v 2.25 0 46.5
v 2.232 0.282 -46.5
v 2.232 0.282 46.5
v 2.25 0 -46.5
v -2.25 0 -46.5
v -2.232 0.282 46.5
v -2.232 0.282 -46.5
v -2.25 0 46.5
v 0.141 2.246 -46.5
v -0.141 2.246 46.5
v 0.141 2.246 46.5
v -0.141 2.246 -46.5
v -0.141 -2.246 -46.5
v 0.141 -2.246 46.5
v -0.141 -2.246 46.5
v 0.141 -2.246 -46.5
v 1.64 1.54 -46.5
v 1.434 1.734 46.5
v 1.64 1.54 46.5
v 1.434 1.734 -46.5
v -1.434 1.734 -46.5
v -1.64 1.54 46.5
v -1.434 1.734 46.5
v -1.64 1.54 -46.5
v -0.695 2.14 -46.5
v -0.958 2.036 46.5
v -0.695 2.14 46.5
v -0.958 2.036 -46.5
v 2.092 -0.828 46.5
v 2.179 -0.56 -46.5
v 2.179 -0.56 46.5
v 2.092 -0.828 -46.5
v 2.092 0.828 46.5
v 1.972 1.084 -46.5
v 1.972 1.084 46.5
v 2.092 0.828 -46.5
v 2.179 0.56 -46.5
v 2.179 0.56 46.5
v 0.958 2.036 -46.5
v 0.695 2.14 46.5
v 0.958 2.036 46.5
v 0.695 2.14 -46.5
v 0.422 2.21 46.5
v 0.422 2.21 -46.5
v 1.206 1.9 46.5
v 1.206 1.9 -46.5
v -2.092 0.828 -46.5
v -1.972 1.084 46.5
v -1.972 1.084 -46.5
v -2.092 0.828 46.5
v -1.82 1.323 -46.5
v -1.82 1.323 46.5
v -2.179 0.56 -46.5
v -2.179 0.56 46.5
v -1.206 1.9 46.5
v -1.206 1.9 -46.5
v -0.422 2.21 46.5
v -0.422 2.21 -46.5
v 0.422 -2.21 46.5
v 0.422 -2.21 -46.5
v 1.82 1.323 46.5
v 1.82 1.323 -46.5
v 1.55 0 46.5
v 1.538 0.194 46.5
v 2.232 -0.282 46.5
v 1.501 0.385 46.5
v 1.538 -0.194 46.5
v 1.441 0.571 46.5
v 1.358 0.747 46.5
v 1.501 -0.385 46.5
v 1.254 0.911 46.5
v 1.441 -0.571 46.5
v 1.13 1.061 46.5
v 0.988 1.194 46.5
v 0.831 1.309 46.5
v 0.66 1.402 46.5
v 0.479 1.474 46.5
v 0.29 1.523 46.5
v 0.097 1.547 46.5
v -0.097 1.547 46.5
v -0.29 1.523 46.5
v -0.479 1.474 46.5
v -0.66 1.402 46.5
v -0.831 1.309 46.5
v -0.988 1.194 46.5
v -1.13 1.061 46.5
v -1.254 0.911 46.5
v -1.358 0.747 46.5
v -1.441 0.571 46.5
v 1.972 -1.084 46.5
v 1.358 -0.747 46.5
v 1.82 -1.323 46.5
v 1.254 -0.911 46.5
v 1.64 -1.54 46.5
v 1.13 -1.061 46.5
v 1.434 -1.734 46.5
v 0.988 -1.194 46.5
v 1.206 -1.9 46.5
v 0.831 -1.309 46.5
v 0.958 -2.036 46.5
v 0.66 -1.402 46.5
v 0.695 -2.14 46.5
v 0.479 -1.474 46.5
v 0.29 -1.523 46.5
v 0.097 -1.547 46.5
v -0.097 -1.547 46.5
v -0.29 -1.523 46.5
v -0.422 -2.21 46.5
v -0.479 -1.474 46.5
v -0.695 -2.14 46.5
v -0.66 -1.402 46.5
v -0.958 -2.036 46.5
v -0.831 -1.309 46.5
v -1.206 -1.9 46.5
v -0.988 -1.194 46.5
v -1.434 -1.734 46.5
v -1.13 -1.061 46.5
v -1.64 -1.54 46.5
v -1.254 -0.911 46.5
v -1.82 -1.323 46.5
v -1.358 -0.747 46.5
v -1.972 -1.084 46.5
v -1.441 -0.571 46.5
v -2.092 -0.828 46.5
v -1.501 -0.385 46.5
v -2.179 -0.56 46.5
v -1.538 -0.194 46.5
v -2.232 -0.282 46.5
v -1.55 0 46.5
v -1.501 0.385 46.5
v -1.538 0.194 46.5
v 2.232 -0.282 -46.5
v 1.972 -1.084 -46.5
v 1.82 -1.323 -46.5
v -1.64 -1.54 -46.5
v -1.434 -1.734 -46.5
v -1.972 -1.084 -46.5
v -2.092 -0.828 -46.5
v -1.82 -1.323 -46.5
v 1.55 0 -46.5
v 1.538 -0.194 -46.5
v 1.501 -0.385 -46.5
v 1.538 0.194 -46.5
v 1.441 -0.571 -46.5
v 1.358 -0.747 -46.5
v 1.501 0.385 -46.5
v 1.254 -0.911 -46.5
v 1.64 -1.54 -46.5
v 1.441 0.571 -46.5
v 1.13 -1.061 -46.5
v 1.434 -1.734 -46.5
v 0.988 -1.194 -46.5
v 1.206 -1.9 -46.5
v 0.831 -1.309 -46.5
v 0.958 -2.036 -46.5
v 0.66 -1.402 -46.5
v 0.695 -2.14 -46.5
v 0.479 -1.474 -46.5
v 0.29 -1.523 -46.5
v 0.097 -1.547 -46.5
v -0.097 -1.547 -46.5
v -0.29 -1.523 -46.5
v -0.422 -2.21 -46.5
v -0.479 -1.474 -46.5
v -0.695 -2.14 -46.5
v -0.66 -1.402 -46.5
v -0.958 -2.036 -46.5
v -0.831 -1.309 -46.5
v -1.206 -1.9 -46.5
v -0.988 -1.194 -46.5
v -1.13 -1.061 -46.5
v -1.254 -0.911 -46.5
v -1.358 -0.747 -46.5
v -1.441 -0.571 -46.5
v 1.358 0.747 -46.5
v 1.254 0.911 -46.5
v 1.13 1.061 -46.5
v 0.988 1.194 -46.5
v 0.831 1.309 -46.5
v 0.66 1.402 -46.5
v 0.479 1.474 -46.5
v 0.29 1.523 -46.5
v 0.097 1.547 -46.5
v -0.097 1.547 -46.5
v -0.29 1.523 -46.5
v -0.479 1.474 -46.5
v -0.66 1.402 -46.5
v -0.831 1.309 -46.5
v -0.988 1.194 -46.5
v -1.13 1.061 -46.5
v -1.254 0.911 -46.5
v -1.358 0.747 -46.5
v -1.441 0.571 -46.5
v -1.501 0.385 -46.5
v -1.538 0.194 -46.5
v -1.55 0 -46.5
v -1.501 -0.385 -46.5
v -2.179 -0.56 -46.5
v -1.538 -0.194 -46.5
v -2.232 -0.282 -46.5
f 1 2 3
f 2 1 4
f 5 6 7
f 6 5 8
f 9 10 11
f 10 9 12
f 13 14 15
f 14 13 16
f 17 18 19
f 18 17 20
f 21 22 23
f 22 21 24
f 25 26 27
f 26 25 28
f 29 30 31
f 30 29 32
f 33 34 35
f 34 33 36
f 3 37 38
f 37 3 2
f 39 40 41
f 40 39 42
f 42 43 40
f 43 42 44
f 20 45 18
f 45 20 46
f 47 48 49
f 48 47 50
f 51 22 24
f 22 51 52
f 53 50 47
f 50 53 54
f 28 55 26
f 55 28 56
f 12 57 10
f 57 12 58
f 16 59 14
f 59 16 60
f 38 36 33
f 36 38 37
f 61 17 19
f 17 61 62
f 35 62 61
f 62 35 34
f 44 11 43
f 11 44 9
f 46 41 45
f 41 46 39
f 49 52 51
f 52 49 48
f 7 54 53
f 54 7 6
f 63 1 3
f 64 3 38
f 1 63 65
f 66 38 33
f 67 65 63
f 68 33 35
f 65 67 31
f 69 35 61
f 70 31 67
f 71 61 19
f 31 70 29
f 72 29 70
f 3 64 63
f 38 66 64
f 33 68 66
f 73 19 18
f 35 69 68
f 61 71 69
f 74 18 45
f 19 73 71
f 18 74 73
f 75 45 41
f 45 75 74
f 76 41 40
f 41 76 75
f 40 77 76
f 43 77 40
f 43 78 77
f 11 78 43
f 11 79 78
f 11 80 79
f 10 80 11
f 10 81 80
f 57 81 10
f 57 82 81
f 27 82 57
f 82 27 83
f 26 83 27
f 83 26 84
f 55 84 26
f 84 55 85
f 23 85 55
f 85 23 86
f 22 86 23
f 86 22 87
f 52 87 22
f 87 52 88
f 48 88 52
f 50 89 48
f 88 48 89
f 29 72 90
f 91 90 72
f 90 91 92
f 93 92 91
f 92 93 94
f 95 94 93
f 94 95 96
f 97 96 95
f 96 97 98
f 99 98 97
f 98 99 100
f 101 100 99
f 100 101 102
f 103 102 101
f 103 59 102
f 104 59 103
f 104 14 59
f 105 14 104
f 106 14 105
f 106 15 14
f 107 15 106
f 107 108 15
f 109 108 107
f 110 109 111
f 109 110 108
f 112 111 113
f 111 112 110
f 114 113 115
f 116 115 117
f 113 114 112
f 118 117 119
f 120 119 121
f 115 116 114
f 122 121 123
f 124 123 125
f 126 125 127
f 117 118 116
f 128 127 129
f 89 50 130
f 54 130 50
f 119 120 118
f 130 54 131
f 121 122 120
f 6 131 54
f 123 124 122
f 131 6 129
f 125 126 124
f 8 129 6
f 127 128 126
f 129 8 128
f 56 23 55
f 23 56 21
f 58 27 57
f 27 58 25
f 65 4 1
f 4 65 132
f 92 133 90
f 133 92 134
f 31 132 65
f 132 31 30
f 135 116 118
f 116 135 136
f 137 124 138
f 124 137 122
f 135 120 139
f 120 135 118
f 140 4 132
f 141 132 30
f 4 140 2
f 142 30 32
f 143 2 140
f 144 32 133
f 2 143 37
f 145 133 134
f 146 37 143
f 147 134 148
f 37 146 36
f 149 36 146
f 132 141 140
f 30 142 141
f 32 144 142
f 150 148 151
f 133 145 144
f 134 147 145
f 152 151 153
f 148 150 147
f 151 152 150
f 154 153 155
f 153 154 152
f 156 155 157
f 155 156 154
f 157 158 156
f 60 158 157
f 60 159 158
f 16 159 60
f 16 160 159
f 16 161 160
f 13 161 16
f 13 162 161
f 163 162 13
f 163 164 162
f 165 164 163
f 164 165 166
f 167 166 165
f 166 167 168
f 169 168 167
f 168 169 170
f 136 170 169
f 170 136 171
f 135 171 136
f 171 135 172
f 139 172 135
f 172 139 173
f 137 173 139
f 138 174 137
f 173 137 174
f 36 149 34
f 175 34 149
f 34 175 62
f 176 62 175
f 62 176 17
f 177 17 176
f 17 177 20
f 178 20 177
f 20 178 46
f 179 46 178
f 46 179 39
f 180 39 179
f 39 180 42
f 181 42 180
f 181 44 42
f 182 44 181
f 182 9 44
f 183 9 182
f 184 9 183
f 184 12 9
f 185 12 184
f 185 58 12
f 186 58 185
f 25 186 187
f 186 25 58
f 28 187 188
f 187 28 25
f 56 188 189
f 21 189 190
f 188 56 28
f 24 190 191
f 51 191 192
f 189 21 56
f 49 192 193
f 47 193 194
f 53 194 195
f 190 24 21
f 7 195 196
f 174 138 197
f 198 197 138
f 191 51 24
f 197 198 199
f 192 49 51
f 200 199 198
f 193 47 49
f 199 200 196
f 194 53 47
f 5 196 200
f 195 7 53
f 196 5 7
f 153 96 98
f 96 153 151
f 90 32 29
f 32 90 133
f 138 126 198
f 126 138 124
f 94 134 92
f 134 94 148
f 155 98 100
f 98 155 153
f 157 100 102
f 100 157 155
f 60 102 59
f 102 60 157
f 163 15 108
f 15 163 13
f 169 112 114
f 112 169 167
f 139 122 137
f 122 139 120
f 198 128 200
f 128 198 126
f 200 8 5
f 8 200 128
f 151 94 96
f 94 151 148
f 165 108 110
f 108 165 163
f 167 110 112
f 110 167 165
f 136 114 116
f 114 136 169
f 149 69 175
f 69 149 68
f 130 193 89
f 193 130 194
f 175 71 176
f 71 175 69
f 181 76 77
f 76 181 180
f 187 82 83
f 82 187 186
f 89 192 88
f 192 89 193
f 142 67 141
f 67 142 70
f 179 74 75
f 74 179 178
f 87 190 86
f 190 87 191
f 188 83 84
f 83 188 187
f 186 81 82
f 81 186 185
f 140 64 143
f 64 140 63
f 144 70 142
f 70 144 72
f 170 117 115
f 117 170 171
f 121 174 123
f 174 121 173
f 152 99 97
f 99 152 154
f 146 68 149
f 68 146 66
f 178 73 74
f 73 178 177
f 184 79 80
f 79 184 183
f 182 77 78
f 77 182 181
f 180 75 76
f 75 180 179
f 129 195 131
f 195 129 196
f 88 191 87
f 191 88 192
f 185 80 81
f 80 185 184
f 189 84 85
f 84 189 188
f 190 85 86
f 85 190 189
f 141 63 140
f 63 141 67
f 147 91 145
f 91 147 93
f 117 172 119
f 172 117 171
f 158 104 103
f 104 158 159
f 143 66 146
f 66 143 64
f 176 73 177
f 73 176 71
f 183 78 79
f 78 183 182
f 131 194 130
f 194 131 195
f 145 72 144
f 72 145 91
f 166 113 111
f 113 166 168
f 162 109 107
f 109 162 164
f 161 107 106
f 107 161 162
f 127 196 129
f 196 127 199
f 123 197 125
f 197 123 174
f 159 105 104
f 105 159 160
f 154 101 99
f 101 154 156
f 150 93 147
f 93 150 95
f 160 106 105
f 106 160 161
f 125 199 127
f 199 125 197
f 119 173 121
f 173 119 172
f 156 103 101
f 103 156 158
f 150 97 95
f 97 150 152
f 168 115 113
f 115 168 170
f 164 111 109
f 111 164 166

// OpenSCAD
$fn = 50;


difference() {
	union() {
		translate(v = [0, 0, -46.5000000000]) {
			cylinder(h = 93, r = 2.2500000000);
		}
	}
	union() {
		translate(v = [0, 0, -100.0000000000]) {
			cylinder(h = 200, r = 1.5500000000);
		}
	}
}
